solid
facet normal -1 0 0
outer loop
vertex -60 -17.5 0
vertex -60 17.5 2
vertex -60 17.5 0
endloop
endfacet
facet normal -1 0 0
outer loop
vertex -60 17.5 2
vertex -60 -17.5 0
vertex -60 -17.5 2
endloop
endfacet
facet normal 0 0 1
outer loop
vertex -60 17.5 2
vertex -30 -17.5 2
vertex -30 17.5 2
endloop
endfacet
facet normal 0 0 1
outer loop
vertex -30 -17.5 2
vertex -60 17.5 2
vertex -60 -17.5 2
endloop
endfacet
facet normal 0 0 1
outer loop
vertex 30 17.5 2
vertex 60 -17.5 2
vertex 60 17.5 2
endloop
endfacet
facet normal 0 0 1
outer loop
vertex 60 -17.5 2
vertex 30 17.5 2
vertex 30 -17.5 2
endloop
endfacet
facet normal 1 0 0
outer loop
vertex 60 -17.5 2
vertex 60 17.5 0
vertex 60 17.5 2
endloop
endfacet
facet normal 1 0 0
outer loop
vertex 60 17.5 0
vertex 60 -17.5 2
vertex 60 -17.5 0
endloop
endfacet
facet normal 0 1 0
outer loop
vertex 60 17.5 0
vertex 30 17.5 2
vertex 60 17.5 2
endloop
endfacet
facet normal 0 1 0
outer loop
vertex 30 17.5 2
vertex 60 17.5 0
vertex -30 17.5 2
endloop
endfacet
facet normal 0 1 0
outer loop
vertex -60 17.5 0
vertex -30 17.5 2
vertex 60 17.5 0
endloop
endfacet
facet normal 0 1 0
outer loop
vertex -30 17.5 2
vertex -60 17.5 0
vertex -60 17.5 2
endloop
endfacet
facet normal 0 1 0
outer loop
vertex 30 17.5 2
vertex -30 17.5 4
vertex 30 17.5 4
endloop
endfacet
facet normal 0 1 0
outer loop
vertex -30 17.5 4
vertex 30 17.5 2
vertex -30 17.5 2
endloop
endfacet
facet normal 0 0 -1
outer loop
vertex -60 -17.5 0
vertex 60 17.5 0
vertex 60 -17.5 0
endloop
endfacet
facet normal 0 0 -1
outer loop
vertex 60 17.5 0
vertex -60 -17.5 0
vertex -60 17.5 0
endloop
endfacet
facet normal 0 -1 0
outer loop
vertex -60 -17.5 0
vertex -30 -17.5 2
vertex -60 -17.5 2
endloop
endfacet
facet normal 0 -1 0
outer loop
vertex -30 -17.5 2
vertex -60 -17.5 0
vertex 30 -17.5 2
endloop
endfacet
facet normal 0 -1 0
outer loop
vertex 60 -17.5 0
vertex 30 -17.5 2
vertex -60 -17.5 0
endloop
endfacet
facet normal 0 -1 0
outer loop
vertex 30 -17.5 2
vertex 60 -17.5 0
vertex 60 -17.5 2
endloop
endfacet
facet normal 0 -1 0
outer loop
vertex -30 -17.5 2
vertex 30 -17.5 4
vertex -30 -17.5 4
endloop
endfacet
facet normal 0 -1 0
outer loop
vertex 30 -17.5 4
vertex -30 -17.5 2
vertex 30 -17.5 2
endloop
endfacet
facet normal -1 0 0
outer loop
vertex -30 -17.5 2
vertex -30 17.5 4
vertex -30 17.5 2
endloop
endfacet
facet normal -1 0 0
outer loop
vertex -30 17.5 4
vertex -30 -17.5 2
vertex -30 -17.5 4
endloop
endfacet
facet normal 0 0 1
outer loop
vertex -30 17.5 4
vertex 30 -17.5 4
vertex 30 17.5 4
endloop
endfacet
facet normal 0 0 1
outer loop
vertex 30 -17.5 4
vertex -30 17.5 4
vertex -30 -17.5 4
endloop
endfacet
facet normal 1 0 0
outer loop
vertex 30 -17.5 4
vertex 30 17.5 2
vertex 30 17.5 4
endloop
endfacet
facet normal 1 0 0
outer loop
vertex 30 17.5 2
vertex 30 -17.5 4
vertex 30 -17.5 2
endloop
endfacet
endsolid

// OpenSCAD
thick = 4;
brodit_foot_width = 50;
brodit_foot_height = 42;
corner = 5.5;
hole_diam = 4;
bar_height = 35;
bar_width = 120;
overlap = 30;

translate([-(bar_width/2),-(bar_height/2),0])
{
    cube(size=[bar_width,bar_height,thick/2]);
    
}

translate([-((bar_width/2)-overlap),-(bar_height/2),thick/2])
{
    cube(size=[bar_width-(2*overlap),bar_height,thick/2]);
    
}
